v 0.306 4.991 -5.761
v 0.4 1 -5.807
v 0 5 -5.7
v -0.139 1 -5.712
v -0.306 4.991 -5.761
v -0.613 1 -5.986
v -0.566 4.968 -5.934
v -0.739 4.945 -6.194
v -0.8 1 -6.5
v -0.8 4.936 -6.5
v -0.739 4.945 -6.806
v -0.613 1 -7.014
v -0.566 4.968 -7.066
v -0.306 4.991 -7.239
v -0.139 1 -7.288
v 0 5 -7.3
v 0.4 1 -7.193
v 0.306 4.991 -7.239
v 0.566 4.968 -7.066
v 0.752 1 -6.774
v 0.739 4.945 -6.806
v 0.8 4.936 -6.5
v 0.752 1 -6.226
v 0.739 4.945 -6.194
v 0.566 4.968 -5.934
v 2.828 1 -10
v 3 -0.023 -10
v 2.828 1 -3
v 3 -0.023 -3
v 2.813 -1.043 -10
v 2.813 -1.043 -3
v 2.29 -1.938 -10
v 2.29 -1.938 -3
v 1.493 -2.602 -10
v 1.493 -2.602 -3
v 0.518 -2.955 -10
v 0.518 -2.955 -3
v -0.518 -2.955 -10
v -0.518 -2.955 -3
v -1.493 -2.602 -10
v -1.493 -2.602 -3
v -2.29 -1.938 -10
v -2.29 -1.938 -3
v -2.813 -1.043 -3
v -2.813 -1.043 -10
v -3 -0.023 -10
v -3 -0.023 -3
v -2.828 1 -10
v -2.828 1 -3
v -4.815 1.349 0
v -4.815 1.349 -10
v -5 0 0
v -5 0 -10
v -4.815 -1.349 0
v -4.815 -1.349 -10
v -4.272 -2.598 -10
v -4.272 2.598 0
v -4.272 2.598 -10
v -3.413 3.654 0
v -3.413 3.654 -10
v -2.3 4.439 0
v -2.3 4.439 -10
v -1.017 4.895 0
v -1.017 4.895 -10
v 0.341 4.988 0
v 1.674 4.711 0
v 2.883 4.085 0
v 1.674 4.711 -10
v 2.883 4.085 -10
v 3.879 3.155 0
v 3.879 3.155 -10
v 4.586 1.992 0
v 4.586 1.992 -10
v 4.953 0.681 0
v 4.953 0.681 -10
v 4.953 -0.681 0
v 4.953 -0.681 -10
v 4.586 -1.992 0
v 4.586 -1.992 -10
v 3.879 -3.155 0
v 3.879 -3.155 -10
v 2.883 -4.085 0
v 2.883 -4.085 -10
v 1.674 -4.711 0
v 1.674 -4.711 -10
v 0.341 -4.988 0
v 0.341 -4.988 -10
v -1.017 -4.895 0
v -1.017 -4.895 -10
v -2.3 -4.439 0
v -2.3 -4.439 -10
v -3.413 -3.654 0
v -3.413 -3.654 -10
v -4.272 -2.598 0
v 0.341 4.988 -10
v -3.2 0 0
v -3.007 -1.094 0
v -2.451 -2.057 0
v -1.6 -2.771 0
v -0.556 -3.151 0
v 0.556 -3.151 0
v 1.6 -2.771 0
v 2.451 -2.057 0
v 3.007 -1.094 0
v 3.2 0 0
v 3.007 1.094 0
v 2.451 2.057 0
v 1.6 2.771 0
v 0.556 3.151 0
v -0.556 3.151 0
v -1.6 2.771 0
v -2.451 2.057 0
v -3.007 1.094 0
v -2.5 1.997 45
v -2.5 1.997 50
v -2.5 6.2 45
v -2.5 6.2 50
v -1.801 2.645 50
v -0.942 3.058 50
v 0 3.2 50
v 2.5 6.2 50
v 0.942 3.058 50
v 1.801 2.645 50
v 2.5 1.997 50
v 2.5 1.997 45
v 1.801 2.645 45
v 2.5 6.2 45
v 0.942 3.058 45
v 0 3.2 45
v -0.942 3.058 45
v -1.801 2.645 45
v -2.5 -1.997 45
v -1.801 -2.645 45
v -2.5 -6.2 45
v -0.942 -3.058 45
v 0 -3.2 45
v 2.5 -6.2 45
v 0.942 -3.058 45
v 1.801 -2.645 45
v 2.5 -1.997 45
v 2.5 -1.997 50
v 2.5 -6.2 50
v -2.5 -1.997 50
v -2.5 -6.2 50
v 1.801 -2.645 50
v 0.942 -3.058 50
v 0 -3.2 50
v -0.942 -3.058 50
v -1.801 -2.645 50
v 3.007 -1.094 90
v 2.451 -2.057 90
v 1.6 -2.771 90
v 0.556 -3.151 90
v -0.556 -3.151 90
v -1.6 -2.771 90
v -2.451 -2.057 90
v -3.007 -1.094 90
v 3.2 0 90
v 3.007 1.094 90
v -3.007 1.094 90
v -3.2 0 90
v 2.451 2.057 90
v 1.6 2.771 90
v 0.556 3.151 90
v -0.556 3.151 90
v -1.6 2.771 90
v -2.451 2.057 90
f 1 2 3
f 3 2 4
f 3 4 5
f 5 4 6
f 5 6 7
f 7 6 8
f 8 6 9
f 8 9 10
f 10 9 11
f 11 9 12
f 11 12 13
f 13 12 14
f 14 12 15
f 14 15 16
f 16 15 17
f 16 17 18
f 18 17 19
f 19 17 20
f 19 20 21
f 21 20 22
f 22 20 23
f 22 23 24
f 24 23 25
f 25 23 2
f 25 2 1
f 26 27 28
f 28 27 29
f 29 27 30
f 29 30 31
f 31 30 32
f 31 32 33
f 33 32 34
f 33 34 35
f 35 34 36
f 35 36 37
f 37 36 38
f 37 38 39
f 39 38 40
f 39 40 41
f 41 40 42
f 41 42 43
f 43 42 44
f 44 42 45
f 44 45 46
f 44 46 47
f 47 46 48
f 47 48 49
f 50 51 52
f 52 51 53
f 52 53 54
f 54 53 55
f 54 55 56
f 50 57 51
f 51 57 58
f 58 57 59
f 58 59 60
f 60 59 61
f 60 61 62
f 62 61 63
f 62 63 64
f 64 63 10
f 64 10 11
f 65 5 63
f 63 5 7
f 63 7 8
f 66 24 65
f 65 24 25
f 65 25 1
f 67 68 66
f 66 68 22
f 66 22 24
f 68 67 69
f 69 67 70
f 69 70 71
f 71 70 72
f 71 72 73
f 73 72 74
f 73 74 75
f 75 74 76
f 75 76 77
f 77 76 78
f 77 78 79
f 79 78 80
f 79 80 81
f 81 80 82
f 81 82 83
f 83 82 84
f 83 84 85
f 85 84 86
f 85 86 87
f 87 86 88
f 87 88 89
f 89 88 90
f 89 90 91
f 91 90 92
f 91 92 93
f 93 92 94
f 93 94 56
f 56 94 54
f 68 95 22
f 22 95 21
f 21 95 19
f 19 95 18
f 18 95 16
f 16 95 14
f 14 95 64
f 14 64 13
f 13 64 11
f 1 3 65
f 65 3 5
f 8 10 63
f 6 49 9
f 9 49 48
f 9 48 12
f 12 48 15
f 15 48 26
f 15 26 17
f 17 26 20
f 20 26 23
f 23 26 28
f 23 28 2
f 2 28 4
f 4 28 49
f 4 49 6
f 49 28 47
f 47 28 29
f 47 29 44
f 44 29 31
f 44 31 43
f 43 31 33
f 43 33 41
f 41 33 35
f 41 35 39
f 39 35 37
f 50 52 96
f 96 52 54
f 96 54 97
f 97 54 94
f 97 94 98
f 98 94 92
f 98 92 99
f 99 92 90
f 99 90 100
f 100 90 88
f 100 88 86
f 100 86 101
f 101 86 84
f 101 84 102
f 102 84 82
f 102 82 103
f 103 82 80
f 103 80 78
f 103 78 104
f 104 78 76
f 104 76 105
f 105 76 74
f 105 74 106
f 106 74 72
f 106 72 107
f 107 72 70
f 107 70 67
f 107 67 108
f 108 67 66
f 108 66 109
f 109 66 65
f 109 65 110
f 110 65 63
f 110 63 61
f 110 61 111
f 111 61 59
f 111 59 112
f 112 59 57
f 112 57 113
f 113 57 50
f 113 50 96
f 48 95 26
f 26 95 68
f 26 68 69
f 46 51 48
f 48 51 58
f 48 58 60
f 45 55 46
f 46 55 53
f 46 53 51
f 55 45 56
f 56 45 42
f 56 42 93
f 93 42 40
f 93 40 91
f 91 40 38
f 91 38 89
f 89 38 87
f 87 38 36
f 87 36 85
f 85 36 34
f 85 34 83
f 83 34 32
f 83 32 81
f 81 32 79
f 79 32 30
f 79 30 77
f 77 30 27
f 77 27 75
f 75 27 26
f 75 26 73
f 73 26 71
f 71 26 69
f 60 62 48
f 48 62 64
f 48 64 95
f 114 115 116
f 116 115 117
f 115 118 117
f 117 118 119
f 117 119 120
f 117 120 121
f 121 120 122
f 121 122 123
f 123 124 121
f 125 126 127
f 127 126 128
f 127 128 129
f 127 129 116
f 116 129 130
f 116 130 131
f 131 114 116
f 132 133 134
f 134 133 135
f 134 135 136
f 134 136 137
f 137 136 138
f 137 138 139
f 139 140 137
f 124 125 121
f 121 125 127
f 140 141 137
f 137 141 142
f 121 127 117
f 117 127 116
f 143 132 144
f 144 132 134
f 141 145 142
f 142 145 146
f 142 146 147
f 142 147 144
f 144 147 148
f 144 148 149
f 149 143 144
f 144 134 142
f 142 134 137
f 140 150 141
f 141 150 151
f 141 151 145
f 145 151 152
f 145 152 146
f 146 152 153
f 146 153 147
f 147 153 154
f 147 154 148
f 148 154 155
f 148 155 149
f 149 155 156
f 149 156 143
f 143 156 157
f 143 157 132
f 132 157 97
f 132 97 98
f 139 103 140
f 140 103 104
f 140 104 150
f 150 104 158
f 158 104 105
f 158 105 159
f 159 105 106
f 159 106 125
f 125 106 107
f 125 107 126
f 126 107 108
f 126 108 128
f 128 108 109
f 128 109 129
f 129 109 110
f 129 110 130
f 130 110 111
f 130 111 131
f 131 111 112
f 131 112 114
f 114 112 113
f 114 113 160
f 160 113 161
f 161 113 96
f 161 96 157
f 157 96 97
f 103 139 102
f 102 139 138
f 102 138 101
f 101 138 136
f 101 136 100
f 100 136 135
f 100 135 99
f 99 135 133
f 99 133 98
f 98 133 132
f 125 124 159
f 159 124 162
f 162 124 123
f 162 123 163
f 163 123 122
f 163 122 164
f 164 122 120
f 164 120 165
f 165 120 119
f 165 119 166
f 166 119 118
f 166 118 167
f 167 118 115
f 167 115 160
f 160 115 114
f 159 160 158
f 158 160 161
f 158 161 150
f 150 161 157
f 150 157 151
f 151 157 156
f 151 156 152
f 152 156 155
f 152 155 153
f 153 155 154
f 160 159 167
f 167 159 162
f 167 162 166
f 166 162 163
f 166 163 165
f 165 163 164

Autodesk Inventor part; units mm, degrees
ref_plane "YZ Plane" through (0, 0, 0) normal (1, 0, 0) x (0, 1, 0)
sketch "Sketch1" plane through (0, 0, 0) normal (0, 0, 1) x (1, 0, 0)
  circle A0 centre (0, 0) radius 3.2
  dimension "d0" = 6.4
extrude "Extrusion1" add sketch "Sketch1" along normal blind 90
ref_plane "Work Plane2" through (0, 3.2, 0) normal (0, 1, 0) x (-1, 0, 0)
sketch "Sketch7" plane through (0, 3.2, 0) normal (0, 1, 0) x (-1, 0, 0)
  line L0 (2.5, 50) -> (-2.5, 50)
  line L1 (-2.5, 50) -> (-2.5, 45)
  line L2 (-2.5, 45) -> (2.5, 45)
  line L3 (2.5, 45) -> (2.5, 50)
  line L4 (-3.2, 0) -> (3.2, 0) projected
  line L5 (3.2, 90) -> (-3.2, 90) projected
  point P0 (0, 0)
  dimension "d30" = 5
  dimension "d31" = 5
  dimension "d32" = 2.5
  dimension "d42" = 40
extrude "Extrusion6" add sketch "Sketch7" against normal blind 9.4 and the other way blind 3
sketch "Sketch9" plane through (0, 0, 0) normal (0, 0, -1) x (-1, 0, 0)
  circle A0 centre (0, 0) radius 5
  dimension "d43" = 10
extrude "Extrusion8" add sketch "Sketch9" along normal blind 10
sketch "Sketch10" plane through (0, 0, -10) normal (0, 0, -1) x (-1, 0, 0)
  arc A0 (-2.8284, 1) -> (2.8284, 1) centre (0, 0) ccw
  line L0 (-2.8284, 1) -> (2.8284, 1)
  dimension "d46" = 6
  dimension "d47" = 1
extrude "Extrusion9" cut sketch "Sketch10" against normal blind 7
ref_plane "Work Plane4" through (0, 5, 0) normal (0, 1, 0) x (-1, 0, 0)
sketch "Sketch12" plane through (0, 5, 0) normal (0, 1, 0) x (-1, 0, 0)
  circle A0 centre (0, -6.5) radius 0.8
  line L0 (-5, -10) -> (5, -10) projected
  point P0 (0, 0)
  dimension "d54" = 1.6
  dimension "d55" = 3.5
extrude "Extrusion11" cut sketch "Sketch12" against normal up to next
equation "\"d32\" = 0.5 * d30"
properties part number "Rotation"
